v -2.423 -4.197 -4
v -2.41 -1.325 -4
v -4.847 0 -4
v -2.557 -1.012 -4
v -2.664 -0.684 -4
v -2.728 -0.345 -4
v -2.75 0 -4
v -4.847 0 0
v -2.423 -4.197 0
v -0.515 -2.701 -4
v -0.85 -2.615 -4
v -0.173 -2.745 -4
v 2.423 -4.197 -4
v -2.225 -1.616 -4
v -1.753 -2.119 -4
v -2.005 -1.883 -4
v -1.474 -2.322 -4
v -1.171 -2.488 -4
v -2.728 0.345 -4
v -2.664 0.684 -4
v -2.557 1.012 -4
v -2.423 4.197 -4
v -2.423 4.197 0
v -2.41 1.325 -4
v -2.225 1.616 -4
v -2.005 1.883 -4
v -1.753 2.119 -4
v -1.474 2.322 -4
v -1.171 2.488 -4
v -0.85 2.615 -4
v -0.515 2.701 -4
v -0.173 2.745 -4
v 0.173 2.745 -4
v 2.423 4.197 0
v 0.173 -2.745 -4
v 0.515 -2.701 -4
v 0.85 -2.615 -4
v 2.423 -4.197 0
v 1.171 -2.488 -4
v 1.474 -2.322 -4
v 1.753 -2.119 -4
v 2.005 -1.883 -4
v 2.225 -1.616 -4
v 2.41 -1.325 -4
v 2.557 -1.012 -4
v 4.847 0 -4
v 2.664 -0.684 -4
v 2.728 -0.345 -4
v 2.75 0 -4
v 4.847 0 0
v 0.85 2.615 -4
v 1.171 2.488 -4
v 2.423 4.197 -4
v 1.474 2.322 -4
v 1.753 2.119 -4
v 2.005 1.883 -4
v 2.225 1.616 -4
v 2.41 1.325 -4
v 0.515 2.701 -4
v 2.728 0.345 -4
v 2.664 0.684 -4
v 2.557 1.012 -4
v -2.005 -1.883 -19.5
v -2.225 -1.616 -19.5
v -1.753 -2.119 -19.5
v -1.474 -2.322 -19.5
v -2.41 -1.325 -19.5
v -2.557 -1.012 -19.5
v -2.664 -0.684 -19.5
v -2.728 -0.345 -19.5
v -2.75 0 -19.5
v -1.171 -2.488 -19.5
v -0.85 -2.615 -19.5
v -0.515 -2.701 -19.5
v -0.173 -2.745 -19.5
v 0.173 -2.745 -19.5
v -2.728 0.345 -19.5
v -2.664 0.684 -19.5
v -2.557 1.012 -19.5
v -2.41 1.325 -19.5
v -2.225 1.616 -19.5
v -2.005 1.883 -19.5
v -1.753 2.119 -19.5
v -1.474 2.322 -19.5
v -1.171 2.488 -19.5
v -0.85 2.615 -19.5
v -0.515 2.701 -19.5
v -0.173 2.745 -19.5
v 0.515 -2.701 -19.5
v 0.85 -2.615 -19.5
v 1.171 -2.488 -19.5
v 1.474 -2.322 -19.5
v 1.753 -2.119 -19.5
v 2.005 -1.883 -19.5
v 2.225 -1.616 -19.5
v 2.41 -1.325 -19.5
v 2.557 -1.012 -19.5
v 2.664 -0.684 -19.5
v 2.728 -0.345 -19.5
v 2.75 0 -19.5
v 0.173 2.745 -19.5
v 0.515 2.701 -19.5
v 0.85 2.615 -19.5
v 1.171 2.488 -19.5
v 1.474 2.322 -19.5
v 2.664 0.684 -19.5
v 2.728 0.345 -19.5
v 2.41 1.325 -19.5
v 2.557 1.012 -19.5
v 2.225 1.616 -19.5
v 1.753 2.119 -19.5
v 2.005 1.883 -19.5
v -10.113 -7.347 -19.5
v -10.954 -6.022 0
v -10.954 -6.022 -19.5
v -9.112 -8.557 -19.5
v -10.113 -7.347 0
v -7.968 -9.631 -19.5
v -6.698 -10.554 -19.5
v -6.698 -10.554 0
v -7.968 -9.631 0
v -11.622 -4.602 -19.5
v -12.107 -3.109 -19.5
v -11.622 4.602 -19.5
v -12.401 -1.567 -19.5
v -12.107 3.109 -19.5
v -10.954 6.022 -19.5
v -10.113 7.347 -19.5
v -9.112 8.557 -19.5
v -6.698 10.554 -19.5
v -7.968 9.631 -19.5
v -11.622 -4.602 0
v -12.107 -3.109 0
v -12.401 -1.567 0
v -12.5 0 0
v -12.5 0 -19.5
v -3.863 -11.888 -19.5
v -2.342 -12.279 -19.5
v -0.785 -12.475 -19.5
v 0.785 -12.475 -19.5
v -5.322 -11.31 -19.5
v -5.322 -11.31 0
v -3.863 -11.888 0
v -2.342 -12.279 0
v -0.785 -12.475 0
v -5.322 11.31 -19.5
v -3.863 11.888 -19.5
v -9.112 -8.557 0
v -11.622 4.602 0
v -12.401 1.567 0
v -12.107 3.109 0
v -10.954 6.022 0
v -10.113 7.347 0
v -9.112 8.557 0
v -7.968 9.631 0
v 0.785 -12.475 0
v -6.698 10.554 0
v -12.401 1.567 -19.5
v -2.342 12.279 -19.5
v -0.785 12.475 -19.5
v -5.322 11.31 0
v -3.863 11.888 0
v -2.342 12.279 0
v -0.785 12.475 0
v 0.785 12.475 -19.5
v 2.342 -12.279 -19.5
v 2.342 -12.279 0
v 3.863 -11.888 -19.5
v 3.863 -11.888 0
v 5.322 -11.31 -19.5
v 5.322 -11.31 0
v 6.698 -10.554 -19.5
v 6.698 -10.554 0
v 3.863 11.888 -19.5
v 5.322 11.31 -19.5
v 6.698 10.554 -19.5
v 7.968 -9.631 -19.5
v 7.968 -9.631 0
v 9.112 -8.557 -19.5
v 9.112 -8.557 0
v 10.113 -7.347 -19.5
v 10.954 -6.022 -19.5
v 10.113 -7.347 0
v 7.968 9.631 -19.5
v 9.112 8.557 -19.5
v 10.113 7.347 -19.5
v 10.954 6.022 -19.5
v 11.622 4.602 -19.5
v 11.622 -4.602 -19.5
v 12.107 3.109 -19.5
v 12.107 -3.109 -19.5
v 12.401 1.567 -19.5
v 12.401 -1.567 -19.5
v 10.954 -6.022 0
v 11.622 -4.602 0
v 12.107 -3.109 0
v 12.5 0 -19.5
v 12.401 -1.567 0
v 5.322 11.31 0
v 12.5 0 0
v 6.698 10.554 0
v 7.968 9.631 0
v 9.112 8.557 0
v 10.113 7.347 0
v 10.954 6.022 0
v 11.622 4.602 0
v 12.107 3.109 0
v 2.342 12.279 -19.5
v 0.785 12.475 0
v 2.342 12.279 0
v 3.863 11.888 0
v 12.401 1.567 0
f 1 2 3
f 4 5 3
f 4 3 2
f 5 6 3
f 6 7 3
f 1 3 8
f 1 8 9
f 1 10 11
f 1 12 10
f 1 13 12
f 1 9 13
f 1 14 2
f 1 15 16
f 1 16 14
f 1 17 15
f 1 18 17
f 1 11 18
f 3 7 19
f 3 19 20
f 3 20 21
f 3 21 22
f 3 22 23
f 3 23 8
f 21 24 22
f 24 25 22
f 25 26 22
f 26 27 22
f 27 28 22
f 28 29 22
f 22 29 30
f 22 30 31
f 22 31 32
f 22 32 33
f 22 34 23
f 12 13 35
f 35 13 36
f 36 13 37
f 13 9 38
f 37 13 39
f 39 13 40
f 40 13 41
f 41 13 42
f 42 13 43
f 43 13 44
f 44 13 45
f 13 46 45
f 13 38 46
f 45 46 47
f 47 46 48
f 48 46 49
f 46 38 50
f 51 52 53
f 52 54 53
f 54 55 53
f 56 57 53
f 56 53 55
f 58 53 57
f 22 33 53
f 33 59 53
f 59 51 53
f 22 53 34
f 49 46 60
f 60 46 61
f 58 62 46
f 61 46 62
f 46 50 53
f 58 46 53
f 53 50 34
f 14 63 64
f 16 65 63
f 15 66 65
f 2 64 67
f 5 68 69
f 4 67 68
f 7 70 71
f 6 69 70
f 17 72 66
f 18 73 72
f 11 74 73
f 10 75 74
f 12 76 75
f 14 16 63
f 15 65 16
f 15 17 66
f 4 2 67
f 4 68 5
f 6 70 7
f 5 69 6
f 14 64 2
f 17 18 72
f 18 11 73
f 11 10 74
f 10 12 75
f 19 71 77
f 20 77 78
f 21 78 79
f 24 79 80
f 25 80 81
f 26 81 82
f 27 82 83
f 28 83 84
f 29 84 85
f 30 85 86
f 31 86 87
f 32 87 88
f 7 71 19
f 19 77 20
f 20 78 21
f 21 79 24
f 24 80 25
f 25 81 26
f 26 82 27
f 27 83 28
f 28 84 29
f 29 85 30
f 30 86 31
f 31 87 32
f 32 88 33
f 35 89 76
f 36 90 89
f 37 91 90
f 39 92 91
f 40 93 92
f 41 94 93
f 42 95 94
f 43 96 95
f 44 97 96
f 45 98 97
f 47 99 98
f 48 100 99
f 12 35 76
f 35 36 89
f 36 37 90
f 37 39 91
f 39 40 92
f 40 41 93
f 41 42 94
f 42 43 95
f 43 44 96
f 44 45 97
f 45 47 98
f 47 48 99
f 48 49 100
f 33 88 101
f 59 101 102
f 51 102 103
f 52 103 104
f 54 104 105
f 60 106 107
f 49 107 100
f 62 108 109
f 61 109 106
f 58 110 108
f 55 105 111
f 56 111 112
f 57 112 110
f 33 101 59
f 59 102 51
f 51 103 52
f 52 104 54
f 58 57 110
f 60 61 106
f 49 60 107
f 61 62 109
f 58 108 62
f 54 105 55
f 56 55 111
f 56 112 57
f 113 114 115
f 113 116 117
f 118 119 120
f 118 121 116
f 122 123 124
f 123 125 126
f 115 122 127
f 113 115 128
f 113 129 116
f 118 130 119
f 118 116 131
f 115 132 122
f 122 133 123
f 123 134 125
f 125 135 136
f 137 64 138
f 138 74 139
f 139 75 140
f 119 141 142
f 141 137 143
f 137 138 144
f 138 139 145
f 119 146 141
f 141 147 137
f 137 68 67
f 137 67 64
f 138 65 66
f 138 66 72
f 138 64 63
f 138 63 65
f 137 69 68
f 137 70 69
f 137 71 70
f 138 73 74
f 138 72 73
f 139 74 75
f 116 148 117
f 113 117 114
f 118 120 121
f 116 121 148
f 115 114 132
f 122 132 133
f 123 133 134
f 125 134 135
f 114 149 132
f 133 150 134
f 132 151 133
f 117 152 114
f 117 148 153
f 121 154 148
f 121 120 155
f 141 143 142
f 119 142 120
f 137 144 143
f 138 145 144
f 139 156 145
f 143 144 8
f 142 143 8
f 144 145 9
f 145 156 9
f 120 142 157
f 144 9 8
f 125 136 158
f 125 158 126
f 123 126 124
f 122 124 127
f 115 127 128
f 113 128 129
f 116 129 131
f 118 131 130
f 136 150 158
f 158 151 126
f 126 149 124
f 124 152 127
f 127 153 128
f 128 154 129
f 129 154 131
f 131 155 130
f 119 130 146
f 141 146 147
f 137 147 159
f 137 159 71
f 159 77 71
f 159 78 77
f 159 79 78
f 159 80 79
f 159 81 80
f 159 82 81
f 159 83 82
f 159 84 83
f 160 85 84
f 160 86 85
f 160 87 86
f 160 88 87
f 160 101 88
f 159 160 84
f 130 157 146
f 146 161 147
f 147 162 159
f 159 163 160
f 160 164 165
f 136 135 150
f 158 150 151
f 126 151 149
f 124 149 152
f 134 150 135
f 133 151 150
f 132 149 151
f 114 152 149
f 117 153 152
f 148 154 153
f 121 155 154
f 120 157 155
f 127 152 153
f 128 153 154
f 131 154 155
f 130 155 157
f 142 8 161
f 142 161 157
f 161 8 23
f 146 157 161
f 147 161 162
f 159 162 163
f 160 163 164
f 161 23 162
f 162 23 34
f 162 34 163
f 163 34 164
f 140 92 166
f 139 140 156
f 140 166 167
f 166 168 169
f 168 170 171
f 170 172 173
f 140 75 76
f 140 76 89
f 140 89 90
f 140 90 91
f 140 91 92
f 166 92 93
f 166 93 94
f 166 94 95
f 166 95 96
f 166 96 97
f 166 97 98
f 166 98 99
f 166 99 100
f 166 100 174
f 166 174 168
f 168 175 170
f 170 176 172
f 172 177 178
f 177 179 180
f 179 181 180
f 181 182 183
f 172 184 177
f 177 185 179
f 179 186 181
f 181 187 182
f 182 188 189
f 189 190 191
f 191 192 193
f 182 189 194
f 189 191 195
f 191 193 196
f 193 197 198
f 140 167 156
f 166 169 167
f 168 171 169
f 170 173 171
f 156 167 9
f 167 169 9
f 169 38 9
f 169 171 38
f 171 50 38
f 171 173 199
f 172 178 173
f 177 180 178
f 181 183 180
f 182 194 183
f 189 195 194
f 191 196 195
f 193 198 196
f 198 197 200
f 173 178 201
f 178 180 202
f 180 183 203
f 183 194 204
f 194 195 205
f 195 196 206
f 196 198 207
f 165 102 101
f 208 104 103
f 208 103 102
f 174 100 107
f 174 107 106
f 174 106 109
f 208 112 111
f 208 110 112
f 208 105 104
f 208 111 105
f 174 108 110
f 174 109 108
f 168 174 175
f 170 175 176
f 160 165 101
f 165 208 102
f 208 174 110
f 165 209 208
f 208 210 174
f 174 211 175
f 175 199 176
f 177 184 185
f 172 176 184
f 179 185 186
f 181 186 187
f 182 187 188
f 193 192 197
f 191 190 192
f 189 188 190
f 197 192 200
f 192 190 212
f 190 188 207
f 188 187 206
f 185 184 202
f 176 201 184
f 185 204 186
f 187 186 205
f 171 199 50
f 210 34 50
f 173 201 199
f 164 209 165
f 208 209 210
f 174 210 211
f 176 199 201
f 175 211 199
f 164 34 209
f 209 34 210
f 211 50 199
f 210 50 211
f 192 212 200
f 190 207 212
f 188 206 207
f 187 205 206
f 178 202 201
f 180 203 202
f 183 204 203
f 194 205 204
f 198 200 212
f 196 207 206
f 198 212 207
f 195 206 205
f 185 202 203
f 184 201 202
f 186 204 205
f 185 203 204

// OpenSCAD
$fn = 50;

difference() {
	union() {
		translate(v = [0, 0, -19.5]) {
			cylinder(h = 19.5, r = 12.5);
		}
	}
	union() {
		translate(v = [0, 0, 0]) {
			rotate(a = [0, 0, 0]) {
				difference() {
					union() {
						translate(v = [0, 0, -4]) {
							linear_extrude(height = 4) {
								polygon(points = [[4.8468, 0.0], [2.4234000000000004, 4.197451927062417], [-2.423399999999999, 4.197451927062417], [-4.8468, 5.935618106107392e-16], [-2.423400000000002, -4.197451927062416], [2.423399999999997, -4.197451927062419]]);
							}
						}
					}
					union();
				}
			}
		}
		#translate(v = [0, 0, -100.0]) {
			cylinder(h = 200, r = 2.75);
		}
	}
}
